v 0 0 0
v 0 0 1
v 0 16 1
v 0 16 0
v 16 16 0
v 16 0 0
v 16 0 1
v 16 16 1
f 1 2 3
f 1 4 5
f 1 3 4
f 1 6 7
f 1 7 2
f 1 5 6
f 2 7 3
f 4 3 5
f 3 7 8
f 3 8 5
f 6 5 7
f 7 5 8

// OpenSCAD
/* Warning, this is a very basic generator with a lot of approximation 
input data : [TQFP, 4KB, 16x16x1mm, 144, , A, C04-21546A]
generated by com.zoubworld.electronics.cad.model3d.Basic
Date : Sun Feb 15 10:50:49 CET 2026
*/

//body
color("black")
translate([0,0,0])
cube([16.0,16.0,1.0], center=false);
